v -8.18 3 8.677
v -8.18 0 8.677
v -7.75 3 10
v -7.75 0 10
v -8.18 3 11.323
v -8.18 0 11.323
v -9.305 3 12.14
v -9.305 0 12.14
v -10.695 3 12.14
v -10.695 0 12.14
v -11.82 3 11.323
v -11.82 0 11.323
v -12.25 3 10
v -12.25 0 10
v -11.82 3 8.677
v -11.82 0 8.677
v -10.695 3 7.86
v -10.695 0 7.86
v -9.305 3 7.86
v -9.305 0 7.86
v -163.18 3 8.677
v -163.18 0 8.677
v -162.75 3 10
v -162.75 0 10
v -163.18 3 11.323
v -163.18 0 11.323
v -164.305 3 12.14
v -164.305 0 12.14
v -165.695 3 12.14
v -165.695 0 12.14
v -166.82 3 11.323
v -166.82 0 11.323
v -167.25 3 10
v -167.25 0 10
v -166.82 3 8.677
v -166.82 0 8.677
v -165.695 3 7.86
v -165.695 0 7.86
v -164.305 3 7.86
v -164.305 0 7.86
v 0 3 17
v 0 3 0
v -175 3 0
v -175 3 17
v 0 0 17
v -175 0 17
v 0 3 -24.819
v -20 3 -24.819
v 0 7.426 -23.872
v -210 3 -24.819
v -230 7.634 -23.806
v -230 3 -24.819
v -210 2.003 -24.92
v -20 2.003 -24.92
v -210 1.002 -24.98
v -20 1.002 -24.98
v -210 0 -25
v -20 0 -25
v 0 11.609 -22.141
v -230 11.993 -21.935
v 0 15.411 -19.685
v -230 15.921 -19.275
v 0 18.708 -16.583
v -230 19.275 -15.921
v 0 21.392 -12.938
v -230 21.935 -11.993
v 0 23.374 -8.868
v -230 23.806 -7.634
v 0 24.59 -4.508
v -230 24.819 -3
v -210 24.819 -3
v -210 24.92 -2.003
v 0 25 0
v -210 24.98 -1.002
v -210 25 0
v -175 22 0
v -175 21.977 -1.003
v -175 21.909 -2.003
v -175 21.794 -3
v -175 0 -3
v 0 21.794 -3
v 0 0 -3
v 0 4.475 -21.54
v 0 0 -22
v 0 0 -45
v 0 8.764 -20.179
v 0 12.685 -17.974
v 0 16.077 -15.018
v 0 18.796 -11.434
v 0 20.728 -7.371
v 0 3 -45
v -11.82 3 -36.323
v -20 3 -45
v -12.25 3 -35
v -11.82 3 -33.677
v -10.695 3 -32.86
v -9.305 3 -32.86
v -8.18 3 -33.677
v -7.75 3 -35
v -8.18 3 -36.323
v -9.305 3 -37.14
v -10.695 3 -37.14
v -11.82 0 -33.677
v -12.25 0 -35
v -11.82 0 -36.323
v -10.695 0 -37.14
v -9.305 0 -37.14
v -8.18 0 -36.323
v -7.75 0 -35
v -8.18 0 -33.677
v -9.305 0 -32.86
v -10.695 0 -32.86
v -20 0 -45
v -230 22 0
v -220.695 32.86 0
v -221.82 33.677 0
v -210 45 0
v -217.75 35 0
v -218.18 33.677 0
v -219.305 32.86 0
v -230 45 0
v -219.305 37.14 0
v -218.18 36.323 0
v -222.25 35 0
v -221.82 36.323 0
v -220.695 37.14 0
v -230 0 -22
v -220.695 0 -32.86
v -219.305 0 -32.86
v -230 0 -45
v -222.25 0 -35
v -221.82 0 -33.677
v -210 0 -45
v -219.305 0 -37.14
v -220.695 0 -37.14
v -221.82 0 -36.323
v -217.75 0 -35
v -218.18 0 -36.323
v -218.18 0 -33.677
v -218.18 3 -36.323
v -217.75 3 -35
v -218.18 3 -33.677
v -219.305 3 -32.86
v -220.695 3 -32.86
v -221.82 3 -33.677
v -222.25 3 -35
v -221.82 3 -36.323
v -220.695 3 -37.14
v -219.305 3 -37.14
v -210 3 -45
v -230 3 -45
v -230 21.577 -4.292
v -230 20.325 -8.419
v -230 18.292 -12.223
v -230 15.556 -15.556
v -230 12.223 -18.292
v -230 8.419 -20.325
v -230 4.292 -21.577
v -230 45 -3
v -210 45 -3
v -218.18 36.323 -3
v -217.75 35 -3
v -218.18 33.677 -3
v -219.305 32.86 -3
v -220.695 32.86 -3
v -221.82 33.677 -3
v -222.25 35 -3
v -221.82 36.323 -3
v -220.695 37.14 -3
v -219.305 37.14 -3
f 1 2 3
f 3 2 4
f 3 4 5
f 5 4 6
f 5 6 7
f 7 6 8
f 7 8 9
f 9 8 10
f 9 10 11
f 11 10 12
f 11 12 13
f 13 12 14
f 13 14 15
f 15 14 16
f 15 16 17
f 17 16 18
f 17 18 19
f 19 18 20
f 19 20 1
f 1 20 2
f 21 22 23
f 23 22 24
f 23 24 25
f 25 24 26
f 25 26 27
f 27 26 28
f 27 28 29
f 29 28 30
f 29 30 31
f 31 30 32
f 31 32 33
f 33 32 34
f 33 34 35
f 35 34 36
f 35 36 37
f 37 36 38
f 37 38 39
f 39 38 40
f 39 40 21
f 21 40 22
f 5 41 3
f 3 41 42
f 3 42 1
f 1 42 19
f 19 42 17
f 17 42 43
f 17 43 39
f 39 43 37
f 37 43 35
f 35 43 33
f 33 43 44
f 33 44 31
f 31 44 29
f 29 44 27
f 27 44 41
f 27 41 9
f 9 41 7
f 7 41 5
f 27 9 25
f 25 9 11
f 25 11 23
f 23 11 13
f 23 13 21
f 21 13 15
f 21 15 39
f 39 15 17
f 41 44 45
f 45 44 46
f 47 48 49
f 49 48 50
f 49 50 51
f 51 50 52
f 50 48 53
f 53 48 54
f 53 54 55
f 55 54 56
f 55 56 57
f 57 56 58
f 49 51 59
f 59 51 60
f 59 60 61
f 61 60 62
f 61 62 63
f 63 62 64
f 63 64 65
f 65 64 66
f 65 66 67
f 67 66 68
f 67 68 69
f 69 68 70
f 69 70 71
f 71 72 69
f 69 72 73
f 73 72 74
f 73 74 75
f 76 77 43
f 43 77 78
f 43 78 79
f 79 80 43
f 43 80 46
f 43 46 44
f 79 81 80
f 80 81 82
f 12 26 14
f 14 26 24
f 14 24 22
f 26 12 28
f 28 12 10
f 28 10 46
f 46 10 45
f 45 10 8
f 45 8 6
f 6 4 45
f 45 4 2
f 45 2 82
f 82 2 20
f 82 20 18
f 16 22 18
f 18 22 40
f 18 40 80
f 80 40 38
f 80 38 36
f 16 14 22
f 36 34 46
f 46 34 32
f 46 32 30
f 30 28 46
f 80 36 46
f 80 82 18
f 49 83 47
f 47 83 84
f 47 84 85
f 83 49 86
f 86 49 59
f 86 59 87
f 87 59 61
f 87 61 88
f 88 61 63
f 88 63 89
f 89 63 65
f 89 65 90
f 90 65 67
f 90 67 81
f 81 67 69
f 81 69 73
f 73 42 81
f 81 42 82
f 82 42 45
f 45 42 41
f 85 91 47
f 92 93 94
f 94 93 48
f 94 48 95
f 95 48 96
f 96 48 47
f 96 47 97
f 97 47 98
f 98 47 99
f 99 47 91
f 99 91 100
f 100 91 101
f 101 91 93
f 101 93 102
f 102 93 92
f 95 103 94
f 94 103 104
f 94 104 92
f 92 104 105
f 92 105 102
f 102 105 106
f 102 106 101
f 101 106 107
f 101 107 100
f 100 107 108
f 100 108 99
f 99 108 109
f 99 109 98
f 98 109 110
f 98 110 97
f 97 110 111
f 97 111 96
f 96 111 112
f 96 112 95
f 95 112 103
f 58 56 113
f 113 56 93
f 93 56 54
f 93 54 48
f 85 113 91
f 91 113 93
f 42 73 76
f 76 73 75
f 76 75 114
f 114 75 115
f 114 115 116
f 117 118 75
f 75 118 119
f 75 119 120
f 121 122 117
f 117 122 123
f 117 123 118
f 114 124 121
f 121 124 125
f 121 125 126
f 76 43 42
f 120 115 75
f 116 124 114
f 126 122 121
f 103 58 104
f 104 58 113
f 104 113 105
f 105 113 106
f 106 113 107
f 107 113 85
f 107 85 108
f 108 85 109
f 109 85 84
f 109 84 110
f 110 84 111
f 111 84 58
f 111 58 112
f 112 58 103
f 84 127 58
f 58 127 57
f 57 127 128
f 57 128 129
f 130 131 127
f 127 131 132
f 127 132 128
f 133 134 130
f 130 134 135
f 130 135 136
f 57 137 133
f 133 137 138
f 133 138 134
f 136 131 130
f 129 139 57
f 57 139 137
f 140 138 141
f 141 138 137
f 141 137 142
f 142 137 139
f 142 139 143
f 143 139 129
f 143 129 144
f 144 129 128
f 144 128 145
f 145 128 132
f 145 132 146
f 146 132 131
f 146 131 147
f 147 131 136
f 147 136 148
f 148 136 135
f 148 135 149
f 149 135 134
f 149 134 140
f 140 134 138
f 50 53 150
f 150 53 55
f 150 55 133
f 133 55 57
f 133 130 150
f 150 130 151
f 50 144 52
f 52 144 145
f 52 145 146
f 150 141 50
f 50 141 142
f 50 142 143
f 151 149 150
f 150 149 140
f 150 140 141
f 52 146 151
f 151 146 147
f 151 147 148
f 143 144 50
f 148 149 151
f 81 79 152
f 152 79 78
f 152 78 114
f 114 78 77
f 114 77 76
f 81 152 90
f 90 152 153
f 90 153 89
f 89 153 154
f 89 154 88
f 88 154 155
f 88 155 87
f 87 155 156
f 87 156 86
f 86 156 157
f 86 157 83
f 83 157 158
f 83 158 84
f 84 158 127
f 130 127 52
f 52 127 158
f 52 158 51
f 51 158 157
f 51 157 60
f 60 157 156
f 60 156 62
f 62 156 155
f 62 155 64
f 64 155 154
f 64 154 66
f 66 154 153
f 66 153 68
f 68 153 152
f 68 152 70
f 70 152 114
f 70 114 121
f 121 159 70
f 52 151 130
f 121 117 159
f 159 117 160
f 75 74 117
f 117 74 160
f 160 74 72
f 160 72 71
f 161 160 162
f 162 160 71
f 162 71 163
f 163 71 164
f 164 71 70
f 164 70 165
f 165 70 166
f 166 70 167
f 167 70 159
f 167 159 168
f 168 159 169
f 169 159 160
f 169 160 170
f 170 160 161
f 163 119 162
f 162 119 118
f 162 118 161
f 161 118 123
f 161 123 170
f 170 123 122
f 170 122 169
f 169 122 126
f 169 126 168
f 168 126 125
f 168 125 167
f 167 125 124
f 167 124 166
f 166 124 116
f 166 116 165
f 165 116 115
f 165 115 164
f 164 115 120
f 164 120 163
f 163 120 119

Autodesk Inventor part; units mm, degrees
sketch "スケッチ1" plane through (0, 0, 0) normal (0, 1, 0) x (-1, 0, 0)
  line L0 (0, -22) -> (230, -22)
  line L1 (230, -22) -> (230, -25)
  line L2 (230, -25) -> (0, -25)
  line L3 (0, -25) -> (0, -22)
  line L4 (276, 0) -> (-46, 0) projected
  point P0 (0, 0)
  dimension "d0" = 3
  dimension "d1" = 230
  dimension "d2" = 25
revolve "回転1" add sketch "スケッチ1" angle 90 about axis through (-10, 0, 0) along (1, 0, 0)
sketch "スケッチ2" plane through (-230, 25, 0) normal (0, 0, 1) x (1, 0, 0)
  line L0 (230, 0) -> (0, 0) projected
  line L1 (0, 0) -> (0, -3) projected
  line L2 (0, -3) -> (230, -3) projected
  line L3 (230, -3) -> (230, 0) projected
  line L4 (230, 0) -> (0, 0) projected
  line L5 (0, 0) -> (20, 0)
  line L6 (20, 0) -> (20, 20)
  line L7 (20, 20) -> (0, 20)
  line L8 (0, 20) -> (0, 0)
  line L9 (115, 0) -> (115, -3)
  line L10 (0, -3) -> (230, -3) projected
  line L11 (20, 0) -> (20, -3)
  circle A0 centre (10, 10) radius 2.25
  point P0 (230, -25)
  point P1 (20, 0)
  point P2 (20, -3)
  point P3 (20, 0)
  dimension "d4" = 20
  dimension "d5" = 20
  dimension "d8" = 4.5
extrude "押し出し1" add sketch "スケッチ2" against normal blind 3 contours L11 L2 L1 L0 | L0 L8 L7 L6
ref_plane "作業平面1" through (-115, 0, -25) normal (-1, 0, 0) x (0, 0, 1)
mirror "ミラー1" about plane through (-115, 0, -25) normal (-1, 0, 0) of "押し出し1"
ref_plane "作業平面2" through (-230, 0, 0) normal (0, 0.7071068, 0.7071068) x (-1, 0, 0)
mirror "ミラー2" about plane through (-230, 0, 0) normal (0, 0.7071068, 0.7071068) of "ミラー1", "押し出し1"
ref_plane "作業平面3" through (-20, 22, 0) normal (0, 1, 0) x (1, 0, 0)
sketch "スケッチ4" plane through (-20, 22, 0) normal (0, 1, 0) x (1, 0, 0)
  line L0 (0, 0) -> (20, 0) projected
  line L1 (20, 0) -> (20, 3) projected
  line L2 (20, 3) -> (0, 3) projected
  line L3 (0, 0) -> (0, 3) projected
  line L4 (20, 0) -> (0, 0)
  line L5 (0, 0) -> (-155, 0)
  line L6 (-155, 0) -> (-155, 3)
  line L7 (-155, 3) -> (0, 3)
  line L8 (0, 3) -> (0, 0)
  line L9 (-210, 0) -> (-210, 22) projected
  dimension "d22" = 55
extrude "押し出し3" add sketch "スケッチ4" against normal up to surface (22 mm away)
sketch "スケッチ5" plane through (-230, 45, 0) normal (0, 0, 1) x (1, 0, 0)
  line L0 (230, -45) -> (55, -45) projected
  line L1 (230, -42) -> (210, -42) projected
  line L2 (230, 0) -> (230, -45) projected
  line L3 (210, -42) -> (55, -42)
  line L4 (55, -23.2055) -> (55, -45) projected
  line L5 (55, -23) -> (55, -45) projected
extrude "押し出し4" add sketch "スケッチ5" along normal blind 17
sketch "スケッチ7" plane through (-175, 3, 0) normal (0, 1, 0) x (1, 0, 0)
  circle A0 centre (165, 35) radius 2.25 projected
  circle A1 centre (165, -10) radius 2.25
  line L0 (0, 0) -> (175, 0) projected
  line L1 (175, 0) -> (175, -17) projected
  circle A2 centre (10, -10) radius 2.25
  line L2 (0, 0) -> (0, -17) projected
  dimension "d23" = 4.5
  dimension "d24" = 10
  dimension "d25" = 10
  dimension "d26" = 4.5
  dimension "d27" = 10
  dimension "d28" = 10
extrude "押し出し6" cut sketch "スケッチ7" against normal up to surface (3 mm away) contours A1 | A2
sketch "スケッチ8" plane through (0, 24.8193, -3) normal (1, 0, 0) x (0, 0, -1)
  arc A0 (19, -24.8193) -> (0, -3.0249) centre (-3, -24.8193) ccw projected
  line L0 (19, -24.8193) -> (42, -24.8193) projected
  line L1 (42, -24.8193) -> (42, -21.8193) projected
  line L2 (21.8193, -21.8193) -> (42, -21.8193) projected
  arc A1 (21.8193, -21.8193) -> (0, 0) centre (-3, -24.8193) ccw projected
  line L3 (0, 0) -> (0, 20.1807) projected
  line L4 (-3, 20.1807) -> (0, 20.1807) projected
  line L5 (-3, 20.1807) -> (-3, -21.8193) projected
  line L6 (-3, -21.8193) -> (-20, -21.8193) projected
  line L7 (-20, -24.8193) -> (-20, -21.8193) projected
  line L8 (0, -24.8193) -> (-20, -24.8193) projected
  line L9 (0, -3.0249) -> (0, -24.8193) projected
  line L10 (-3, 20.1807) -> (-3, -21.8193) projected
  arc A2 (0, 0) -> (-3, 0.1807) centre (-3, -24.8193) ccw
  point P0 (-3, -24.8193)
  point P1 (-3, 0.1807)
extrude "押し出し7" cut sketch "スケッチ8" against normal up to surface (20 mm away) contours A2 L5 L4 L3
properties part number "CableCoverForFrameHigher"
